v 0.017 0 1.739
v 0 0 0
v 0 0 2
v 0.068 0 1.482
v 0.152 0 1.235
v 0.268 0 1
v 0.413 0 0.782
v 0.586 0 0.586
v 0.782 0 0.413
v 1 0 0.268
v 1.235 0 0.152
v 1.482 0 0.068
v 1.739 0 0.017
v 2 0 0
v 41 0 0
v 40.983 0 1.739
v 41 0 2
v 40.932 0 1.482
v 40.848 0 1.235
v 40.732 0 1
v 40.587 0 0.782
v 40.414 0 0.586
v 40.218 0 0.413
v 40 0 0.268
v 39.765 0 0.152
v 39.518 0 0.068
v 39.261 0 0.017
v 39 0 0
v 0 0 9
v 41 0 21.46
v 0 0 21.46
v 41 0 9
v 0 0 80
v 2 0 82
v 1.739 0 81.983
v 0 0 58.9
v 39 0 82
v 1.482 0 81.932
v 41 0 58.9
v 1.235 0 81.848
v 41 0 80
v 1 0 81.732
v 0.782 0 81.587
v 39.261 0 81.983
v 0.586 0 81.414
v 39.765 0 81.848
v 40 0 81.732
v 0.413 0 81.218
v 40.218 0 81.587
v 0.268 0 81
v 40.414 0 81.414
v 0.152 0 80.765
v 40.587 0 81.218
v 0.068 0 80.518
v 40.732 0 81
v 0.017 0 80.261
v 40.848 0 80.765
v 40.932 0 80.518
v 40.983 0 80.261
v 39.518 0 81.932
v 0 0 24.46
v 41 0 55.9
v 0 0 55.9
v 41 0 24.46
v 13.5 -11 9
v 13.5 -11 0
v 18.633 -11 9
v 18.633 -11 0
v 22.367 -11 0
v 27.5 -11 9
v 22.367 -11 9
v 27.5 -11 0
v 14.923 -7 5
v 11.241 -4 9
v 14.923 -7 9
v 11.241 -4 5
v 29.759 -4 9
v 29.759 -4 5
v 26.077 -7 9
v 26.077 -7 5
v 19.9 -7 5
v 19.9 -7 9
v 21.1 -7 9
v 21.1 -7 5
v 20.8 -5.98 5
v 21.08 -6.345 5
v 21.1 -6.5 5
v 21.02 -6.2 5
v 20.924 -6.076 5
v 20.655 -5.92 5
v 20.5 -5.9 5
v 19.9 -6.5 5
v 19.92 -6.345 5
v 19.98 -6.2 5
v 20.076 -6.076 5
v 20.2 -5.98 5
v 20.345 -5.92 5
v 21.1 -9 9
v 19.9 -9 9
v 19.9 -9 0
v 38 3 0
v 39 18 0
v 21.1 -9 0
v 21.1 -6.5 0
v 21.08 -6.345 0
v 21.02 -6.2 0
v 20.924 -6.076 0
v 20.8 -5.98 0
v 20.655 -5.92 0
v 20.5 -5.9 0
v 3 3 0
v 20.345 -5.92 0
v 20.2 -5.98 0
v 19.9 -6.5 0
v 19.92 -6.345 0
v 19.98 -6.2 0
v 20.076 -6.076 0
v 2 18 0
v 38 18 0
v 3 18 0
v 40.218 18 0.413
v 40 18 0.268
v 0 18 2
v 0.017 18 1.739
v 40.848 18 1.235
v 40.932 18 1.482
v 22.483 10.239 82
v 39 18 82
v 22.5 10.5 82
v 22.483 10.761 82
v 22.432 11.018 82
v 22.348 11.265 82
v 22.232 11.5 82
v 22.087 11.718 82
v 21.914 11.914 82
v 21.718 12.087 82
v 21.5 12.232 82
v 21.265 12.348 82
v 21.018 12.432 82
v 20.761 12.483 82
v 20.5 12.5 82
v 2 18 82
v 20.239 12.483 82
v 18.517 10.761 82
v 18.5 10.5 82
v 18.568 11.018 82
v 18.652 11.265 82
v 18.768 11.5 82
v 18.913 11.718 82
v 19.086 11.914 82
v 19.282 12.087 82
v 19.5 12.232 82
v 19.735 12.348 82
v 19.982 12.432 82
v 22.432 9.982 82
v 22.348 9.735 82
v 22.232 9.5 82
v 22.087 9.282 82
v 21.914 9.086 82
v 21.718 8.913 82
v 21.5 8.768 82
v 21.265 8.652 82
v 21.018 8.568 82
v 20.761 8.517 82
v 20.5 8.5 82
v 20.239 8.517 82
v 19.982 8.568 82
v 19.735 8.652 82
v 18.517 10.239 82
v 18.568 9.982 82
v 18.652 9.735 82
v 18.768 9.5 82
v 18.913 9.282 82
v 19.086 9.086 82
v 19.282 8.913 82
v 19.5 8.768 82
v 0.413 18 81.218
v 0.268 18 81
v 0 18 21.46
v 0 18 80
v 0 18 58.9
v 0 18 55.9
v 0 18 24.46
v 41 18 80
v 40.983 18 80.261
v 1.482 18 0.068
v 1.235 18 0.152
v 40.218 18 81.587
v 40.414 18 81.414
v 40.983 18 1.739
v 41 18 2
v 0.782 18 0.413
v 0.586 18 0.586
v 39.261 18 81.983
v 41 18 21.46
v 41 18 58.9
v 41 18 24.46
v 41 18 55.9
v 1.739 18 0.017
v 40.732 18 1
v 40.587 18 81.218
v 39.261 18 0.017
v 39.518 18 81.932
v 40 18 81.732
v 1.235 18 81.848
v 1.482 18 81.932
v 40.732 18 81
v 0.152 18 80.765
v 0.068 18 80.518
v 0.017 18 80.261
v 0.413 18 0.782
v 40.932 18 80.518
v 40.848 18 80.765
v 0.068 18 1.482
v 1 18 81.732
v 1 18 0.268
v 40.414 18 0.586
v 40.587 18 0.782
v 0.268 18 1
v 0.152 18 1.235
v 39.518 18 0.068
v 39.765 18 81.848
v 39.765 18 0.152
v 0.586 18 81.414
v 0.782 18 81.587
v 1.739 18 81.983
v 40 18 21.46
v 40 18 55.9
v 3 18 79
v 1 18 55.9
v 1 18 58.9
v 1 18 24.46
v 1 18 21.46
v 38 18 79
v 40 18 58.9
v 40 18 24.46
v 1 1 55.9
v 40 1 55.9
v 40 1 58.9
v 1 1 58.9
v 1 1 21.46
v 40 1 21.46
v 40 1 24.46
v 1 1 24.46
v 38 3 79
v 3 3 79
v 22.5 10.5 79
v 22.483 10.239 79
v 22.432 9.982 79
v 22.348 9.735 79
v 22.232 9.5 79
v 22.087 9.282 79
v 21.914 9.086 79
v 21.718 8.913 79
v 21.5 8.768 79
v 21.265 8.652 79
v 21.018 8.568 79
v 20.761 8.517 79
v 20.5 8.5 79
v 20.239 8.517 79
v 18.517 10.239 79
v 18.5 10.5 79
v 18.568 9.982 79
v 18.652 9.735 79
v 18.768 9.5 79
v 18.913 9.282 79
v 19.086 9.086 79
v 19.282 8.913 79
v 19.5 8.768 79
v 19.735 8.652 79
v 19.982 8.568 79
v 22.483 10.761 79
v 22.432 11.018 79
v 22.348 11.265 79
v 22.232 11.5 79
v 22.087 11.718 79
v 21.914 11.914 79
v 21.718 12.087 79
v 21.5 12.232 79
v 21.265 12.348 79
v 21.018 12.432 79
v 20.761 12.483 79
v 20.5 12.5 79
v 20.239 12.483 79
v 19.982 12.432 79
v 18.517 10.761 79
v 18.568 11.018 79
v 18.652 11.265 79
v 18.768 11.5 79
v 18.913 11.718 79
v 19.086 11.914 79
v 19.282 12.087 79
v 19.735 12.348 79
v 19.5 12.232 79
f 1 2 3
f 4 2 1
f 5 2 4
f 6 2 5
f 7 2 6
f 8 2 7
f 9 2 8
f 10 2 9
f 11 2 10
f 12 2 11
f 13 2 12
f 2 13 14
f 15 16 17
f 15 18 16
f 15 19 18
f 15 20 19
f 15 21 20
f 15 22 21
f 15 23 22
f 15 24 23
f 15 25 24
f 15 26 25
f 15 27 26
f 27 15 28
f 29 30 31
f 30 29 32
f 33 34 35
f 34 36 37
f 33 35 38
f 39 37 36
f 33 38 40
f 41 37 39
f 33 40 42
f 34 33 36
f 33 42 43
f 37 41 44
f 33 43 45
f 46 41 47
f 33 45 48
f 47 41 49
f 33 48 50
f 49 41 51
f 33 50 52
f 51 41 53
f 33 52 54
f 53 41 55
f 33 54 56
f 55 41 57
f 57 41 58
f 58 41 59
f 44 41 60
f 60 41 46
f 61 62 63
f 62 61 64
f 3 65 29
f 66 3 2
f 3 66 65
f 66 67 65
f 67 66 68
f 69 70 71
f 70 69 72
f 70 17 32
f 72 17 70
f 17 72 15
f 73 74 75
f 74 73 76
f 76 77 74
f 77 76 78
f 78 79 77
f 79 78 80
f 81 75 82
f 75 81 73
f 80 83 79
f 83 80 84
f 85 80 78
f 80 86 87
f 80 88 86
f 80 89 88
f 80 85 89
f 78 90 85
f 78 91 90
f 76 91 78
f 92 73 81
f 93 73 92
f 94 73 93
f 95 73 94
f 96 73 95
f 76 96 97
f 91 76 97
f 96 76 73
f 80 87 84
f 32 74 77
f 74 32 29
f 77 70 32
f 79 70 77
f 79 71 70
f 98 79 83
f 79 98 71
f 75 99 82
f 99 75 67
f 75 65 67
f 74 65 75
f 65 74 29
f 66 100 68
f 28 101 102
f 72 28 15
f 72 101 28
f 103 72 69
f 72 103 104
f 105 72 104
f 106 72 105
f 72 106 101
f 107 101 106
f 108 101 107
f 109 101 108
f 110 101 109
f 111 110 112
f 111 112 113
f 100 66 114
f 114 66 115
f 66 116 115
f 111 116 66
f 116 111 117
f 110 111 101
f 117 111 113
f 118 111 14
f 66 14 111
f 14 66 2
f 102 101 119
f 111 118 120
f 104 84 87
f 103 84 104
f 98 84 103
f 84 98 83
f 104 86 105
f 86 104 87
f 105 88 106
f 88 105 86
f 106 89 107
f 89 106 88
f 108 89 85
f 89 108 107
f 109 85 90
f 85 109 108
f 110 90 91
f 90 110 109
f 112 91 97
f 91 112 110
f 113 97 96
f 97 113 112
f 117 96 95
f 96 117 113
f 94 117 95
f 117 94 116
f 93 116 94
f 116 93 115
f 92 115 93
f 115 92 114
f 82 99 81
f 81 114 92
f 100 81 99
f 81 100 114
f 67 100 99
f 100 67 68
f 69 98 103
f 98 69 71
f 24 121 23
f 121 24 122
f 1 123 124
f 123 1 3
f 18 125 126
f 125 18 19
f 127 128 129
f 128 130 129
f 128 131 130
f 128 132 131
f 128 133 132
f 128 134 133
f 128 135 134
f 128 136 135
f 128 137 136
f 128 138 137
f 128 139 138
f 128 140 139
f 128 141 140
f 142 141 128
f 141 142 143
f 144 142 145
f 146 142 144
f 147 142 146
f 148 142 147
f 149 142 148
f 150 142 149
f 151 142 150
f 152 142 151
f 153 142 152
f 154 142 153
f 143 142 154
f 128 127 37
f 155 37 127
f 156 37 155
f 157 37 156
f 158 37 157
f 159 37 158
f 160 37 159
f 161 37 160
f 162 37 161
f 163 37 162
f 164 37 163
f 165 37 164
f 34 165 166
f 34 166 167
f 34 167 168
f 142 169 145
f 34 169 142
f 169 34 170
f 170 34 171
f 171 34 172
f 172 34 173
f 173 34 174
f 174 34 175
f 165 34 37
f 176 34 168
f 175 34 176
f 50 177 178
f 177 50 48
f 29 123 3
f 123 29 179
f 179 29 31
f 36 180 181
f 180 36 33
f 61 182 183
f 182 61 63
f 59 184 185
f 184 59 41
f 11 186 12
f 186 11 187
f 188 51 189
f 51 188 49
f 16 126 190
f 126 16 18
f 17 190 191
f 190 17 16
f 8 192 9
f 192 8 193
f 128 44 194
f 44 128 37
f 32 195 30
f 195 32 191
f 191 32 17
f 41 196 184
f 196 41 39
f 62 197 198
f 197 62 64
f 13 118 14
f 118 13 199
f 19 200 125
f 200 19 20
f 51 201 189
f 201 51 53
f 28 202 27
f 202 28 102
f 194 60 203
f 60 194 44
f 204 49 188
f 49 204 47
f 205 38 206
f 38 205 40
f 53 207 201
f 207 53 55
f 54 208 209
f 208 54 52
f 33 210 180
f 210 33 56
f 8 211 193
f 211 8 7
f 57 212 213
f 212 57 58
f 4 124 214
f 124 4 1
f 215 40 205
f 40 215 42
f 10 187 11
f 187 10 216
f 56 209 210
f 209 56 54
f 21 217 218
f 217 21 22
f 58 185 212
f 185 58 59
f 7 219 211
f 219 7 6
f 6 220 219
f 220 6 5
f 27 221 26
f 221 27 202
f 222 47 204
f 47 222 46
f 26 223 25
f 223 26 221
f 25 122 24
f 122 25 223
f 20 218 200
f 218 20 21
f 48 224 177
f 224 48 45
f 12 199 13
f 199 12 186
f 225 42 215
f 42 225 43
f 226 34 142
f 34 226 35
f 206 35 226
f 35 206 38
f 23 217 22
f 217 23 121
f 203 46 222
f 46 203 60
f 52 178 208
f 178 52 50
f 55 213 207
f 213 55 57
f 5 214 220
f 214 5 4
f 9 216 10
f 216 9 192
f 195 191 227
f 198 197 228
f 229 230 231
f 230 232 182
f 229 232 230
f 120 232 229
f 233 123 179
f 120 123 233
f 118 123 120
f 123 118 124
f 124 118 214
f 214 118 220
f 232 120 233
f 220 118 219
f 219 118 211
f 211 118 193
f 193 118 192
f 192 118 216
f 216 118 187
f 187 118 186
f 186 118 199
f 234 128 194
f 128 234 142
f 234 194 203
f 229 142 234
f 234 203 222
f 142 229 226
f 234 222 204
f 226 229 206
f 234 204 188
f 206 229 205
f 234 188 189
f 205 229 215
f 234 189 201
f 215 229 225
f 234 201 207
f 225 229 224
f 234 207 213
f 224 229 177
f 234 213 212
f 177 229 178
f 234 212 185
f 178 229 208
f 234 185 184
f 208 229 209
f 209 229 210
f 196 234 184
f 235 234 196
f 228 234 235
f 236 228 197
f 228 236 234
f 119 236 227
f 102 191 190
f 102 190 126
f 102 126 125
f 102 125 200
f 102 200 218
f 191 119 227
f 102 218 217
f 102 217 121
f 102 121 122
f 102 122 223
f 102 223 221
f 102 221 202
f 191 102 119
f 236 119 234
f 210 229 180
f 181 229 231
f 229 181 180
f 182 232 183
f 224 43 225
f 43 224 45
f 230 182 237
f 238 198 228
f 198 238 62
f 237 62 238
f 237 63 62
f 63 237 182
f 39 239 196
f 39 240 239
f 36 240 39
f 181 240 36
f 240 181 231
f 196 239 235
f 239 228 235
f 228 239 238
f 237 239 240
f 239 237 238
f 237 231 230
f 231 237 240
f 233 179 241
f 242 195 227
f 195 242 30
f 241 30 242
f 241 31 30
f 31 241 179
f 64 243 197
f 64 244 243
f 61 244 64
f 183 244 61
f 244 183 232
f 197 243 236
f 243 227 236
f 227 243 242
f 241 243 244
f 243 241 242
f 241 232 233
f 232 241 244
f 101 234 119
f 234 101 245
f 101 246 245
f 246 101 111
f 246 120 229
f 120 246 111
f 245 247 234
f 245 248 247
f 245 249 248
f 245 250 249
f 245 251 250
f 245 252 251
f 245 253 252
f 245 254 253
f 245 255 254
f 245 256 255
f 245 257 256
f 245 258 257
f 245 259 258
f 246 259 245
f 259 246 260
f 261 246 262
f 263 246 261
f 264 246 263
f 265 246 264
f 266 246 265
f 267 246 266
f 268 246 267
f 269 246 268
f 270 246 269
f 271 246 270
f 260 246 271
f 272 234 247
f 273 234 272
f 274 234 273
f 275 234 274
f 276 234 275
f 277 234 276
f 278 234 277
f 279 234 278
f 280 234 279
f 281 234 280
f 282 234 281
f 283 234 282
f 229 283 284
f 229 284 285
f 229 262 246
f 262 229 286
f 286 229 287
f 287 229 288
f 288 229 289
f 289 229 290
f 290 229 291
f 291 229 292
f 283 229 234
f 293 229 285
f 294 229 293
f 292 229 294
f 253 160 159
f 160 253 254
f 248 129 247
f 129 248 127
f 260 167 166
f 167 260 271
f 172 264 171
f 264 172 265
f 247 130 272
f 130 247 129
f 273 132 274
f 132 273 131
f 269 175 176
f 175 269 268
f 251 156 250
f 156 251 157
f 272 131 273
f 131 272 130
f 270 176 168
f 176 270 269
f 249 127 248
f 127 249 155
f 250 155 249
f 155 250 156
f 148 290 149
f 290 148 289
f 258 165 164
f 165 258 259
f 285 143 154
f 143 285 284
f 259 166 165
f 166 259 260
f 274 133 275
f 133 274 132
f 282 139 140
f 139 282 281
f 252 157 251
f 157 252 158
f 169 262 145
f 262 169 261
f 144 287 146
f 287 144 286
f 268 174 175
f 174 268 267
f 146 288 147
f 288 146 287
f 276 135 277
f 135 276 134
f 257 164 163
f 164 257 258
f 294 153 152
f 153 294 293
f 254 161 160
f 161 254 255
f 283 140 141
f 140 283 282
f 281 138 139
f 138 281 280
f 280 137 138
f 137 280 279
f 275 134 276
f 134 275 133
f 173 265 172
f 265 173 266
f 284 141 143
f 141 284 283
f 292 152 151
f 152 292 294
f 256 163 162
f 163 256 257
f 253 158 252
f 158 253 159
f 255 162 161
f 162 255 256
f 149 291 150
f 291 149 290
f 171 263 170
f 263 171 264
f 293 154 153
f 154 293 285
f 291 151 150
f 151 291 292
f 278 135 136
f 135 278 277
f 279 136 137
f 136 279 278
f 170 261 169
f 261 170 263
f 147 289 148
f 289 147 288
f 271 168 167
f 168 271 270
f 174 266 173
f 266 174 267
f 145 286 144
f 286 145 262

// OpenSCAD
// ============================================================
//  Support du télémètre laser, côté voile — reprise de votre « TEST.stl ».
//
//  Même principe : le télémètre est couché dans une auge ouverte à l'avant ; sous l'avant,
//  un bec plat descend sous le fond et porte une encoche. La suspente passe dans l'encoche,
//  sa patte d'attache, trop grosse, bute contre le bec : sous 5 kg, la suspente reste dans
//  l'axe du faisceau. Lecture du laser + constante = longueur de la suspente.
//
//  Ce qui change par rapport à TEST.stl :
//   - cotes du télémètre en paramètres : largeur, longueur, épaisseur ;
//   - parois moins hautes que le télémètre (moins_epais), pour le saisir et atteindre ses boutons ;
//   - dégagement réglable dans une paroi pour les boutons placés sur le côté ;
//   - encoche renforcée : une bande épaisse court le long des deux bords du bec et sous
//     l'encoche, et le bec lui-même est plus épais ;
//   - fond du bec arrondi, entrée en V, deux rainures pour un élastique, trou de dragonne.
//
//  Repère : y = sens du faisceau, face arrière du support en y = 0 ; z vers le haut, dessous
//  du fond en z = 0. Le bec est à l'avant (y = len), ses faces sont perpendiculaires au faisceau.
//  S'imprime debout sur la face avant du bec, sans support.
// ============================================================

// --- Télémètre : à mesurer au pied à coulisse (valeurs reprises de TEST.stl) ---
laser_w = 34.5;    // largeur
laser_l = 78.5;    // longueur
laser_h = 18;      // épaisseur
fit     = 0.5;     // jeu en largeur et en longueur
moins_epais = 3;   // les parois s'arrêtent à cette hauteur sous le dessus du télémètre

// --- Boutons sur le côté du télémètre : la paroi est abaissée en face d'eux ---
btn_cote = 0;      // 0 : aucun ; 1 : côté droit (x grand) ; -1 : côté gauche ; 2 : les deux
btn_y0   = 20;     // début du dégagement, depuis la face arrière du télémètre
btn_len  = 25;     // longueur du dégagement
btn_h    = 4;      // hauteur de paroi conservée sous le dégagement

// --- Auge ---
wall    = 3;       // parois
floor_t = 3;       // fond
r_ext   = 2;       // arrondi des arêtes verticales

// --- Bec et encoche (le bec reprend les 5 kg de la suspente) ---
bec_t    = 5;      // épaisseur du bec (4 sur TEST.stl)
bec_drop = 11;     // descente du bec sous le fond
bec_bas  = 14;     // largeur du bec en bas
slit_w   = 1.2;    // largeur de l'encoche : la suspente passe, la patte (ou son nœud) non
slit_d   = 2.5;    // profondeur de la partie droite de l'encoche, au-dessus du V d'entrée
v_w      = 5;      // V d'entrée : largeur en bas…
v_d      = 2;      // …et profondeur
band     = 4;      // bande de renfort : largeur le long des bords du bec…
band_t   = 4;      // …et surépaisseur vers l'arrière (le bec fait bec_t + band_t sur ses bords)

// --- Divers ---
elastique = true;  // deux rainures autour du support pour un élastique qui tient le télémètre
el_w = 3; el_d = 1;
el_pos = [0.3, 0.72];   // position des rainures, en fraction de la longueur
drag = 4;          // trou de dragonne dans la face arrière

// --- Valeurs dérivées ---
W      = laser_w + fit;
L      = laser_l + fit;
tray_w = W + 2*wall;
len    = wall + L;                     // face avant du bec = face avant du télémètre, au jeu près
wall_h = laser_h - moins_epais;
H      = floor_t + wall_h;
cx     = tray_w/2;                     // axe du faisceau et de l'encoche

$fn = 48;

module prism_y(y0, w) { translate([0, y0 + w, 0]) rotate([90, 0, 0]) linear_extrude(w) children(); }

module bec_profil() polygon([[0, 0], [tray_w, 0], [cx + bec_bas/2, -bec_drop], [cx - bec_bas/2, -bec_drop]]);

module encoche_profil() {
    zb = -bec_drop;
    polygon([[cx - v_w/2, zb - 1], [cx + v_w/2, zb - 1], [cx + slit_w/2, zb + v_d], [cx - slit_w/2, zb + v_d]]);
    translate([cx - slit_w/2, zb + v_d - 0.1]) square([slit_w, slit_d + 0.1]);
    translate([cx, zb + v_d + slit_d]) circle(d = slit_w, $fn = 24);
}

module bec() {
    difference() {
        union() {
            prism_y(len - bec_t, bec_t) bec_profil();                                   // plaque
            intersection() {                                                            // bande de renfort, sous le fond seulement
                prism_y(len - bec_t - band_t, band_t) difference() { bec_profil(); offset(delta = -band) bec_profil(); }
                translate([-1, 0, -bec_drop - 1]) cube([tray_w + 2, len + 1, bec_drop + 1]);
            }
        }
        prism_y(len - bec_t - band_t - 1, bec_t + band_t + 2) encoche_profil();          // encoche, à travers plaque et bande
    }
}

module support_laser() {
    difference() {
        union() {
            linear_extrude(H) offset(r = r_ext) offset(delta = -r_ext) square([tray_w, len]);   // bloc de l'auge
            bec();
        }
        translate([wall, wall, floor_t]) cube([W, L + 1, H]);                                // logement, ouvert à l'avant
        // dégagement des boutons latéraux
        for (s = btn_cote == 2 ? [-1, 1] : btn_cote == 0 ? [] : [btn_cote])
            translate([s > 0 ? tray_w - wall - 1 : -1, wall + btn_y0, floor_t + btn_h]) cube([wall + 2, btn_len, H]);
        // trou de dragonne dans la face arrière
        translate([cx, -1, floor_t + wall_h/2]) rotate([-90, 0, 0]) cylinder(d = drag, h = wall + 2);
        // rainures pour l'élastique, autour des parois et du fond
        if (elastique) for (f = el_pos) translate([0, f*len - el_w/2, 0]) difference() {
            translate([-1, 0, -1]) cube([tray_w + 2, el_w, H + 2]);
            translate([el_d, -1, el_d]) cube([tray_w - 2*el_d, el_w + 2, H + 2]);
        }
    }
}

// orientation d'impression : debout sur la face avant du bec (la face qui regarde la cible)
translate([0, 0, len]) rotate([-90, 0, 0]) support_laser();
